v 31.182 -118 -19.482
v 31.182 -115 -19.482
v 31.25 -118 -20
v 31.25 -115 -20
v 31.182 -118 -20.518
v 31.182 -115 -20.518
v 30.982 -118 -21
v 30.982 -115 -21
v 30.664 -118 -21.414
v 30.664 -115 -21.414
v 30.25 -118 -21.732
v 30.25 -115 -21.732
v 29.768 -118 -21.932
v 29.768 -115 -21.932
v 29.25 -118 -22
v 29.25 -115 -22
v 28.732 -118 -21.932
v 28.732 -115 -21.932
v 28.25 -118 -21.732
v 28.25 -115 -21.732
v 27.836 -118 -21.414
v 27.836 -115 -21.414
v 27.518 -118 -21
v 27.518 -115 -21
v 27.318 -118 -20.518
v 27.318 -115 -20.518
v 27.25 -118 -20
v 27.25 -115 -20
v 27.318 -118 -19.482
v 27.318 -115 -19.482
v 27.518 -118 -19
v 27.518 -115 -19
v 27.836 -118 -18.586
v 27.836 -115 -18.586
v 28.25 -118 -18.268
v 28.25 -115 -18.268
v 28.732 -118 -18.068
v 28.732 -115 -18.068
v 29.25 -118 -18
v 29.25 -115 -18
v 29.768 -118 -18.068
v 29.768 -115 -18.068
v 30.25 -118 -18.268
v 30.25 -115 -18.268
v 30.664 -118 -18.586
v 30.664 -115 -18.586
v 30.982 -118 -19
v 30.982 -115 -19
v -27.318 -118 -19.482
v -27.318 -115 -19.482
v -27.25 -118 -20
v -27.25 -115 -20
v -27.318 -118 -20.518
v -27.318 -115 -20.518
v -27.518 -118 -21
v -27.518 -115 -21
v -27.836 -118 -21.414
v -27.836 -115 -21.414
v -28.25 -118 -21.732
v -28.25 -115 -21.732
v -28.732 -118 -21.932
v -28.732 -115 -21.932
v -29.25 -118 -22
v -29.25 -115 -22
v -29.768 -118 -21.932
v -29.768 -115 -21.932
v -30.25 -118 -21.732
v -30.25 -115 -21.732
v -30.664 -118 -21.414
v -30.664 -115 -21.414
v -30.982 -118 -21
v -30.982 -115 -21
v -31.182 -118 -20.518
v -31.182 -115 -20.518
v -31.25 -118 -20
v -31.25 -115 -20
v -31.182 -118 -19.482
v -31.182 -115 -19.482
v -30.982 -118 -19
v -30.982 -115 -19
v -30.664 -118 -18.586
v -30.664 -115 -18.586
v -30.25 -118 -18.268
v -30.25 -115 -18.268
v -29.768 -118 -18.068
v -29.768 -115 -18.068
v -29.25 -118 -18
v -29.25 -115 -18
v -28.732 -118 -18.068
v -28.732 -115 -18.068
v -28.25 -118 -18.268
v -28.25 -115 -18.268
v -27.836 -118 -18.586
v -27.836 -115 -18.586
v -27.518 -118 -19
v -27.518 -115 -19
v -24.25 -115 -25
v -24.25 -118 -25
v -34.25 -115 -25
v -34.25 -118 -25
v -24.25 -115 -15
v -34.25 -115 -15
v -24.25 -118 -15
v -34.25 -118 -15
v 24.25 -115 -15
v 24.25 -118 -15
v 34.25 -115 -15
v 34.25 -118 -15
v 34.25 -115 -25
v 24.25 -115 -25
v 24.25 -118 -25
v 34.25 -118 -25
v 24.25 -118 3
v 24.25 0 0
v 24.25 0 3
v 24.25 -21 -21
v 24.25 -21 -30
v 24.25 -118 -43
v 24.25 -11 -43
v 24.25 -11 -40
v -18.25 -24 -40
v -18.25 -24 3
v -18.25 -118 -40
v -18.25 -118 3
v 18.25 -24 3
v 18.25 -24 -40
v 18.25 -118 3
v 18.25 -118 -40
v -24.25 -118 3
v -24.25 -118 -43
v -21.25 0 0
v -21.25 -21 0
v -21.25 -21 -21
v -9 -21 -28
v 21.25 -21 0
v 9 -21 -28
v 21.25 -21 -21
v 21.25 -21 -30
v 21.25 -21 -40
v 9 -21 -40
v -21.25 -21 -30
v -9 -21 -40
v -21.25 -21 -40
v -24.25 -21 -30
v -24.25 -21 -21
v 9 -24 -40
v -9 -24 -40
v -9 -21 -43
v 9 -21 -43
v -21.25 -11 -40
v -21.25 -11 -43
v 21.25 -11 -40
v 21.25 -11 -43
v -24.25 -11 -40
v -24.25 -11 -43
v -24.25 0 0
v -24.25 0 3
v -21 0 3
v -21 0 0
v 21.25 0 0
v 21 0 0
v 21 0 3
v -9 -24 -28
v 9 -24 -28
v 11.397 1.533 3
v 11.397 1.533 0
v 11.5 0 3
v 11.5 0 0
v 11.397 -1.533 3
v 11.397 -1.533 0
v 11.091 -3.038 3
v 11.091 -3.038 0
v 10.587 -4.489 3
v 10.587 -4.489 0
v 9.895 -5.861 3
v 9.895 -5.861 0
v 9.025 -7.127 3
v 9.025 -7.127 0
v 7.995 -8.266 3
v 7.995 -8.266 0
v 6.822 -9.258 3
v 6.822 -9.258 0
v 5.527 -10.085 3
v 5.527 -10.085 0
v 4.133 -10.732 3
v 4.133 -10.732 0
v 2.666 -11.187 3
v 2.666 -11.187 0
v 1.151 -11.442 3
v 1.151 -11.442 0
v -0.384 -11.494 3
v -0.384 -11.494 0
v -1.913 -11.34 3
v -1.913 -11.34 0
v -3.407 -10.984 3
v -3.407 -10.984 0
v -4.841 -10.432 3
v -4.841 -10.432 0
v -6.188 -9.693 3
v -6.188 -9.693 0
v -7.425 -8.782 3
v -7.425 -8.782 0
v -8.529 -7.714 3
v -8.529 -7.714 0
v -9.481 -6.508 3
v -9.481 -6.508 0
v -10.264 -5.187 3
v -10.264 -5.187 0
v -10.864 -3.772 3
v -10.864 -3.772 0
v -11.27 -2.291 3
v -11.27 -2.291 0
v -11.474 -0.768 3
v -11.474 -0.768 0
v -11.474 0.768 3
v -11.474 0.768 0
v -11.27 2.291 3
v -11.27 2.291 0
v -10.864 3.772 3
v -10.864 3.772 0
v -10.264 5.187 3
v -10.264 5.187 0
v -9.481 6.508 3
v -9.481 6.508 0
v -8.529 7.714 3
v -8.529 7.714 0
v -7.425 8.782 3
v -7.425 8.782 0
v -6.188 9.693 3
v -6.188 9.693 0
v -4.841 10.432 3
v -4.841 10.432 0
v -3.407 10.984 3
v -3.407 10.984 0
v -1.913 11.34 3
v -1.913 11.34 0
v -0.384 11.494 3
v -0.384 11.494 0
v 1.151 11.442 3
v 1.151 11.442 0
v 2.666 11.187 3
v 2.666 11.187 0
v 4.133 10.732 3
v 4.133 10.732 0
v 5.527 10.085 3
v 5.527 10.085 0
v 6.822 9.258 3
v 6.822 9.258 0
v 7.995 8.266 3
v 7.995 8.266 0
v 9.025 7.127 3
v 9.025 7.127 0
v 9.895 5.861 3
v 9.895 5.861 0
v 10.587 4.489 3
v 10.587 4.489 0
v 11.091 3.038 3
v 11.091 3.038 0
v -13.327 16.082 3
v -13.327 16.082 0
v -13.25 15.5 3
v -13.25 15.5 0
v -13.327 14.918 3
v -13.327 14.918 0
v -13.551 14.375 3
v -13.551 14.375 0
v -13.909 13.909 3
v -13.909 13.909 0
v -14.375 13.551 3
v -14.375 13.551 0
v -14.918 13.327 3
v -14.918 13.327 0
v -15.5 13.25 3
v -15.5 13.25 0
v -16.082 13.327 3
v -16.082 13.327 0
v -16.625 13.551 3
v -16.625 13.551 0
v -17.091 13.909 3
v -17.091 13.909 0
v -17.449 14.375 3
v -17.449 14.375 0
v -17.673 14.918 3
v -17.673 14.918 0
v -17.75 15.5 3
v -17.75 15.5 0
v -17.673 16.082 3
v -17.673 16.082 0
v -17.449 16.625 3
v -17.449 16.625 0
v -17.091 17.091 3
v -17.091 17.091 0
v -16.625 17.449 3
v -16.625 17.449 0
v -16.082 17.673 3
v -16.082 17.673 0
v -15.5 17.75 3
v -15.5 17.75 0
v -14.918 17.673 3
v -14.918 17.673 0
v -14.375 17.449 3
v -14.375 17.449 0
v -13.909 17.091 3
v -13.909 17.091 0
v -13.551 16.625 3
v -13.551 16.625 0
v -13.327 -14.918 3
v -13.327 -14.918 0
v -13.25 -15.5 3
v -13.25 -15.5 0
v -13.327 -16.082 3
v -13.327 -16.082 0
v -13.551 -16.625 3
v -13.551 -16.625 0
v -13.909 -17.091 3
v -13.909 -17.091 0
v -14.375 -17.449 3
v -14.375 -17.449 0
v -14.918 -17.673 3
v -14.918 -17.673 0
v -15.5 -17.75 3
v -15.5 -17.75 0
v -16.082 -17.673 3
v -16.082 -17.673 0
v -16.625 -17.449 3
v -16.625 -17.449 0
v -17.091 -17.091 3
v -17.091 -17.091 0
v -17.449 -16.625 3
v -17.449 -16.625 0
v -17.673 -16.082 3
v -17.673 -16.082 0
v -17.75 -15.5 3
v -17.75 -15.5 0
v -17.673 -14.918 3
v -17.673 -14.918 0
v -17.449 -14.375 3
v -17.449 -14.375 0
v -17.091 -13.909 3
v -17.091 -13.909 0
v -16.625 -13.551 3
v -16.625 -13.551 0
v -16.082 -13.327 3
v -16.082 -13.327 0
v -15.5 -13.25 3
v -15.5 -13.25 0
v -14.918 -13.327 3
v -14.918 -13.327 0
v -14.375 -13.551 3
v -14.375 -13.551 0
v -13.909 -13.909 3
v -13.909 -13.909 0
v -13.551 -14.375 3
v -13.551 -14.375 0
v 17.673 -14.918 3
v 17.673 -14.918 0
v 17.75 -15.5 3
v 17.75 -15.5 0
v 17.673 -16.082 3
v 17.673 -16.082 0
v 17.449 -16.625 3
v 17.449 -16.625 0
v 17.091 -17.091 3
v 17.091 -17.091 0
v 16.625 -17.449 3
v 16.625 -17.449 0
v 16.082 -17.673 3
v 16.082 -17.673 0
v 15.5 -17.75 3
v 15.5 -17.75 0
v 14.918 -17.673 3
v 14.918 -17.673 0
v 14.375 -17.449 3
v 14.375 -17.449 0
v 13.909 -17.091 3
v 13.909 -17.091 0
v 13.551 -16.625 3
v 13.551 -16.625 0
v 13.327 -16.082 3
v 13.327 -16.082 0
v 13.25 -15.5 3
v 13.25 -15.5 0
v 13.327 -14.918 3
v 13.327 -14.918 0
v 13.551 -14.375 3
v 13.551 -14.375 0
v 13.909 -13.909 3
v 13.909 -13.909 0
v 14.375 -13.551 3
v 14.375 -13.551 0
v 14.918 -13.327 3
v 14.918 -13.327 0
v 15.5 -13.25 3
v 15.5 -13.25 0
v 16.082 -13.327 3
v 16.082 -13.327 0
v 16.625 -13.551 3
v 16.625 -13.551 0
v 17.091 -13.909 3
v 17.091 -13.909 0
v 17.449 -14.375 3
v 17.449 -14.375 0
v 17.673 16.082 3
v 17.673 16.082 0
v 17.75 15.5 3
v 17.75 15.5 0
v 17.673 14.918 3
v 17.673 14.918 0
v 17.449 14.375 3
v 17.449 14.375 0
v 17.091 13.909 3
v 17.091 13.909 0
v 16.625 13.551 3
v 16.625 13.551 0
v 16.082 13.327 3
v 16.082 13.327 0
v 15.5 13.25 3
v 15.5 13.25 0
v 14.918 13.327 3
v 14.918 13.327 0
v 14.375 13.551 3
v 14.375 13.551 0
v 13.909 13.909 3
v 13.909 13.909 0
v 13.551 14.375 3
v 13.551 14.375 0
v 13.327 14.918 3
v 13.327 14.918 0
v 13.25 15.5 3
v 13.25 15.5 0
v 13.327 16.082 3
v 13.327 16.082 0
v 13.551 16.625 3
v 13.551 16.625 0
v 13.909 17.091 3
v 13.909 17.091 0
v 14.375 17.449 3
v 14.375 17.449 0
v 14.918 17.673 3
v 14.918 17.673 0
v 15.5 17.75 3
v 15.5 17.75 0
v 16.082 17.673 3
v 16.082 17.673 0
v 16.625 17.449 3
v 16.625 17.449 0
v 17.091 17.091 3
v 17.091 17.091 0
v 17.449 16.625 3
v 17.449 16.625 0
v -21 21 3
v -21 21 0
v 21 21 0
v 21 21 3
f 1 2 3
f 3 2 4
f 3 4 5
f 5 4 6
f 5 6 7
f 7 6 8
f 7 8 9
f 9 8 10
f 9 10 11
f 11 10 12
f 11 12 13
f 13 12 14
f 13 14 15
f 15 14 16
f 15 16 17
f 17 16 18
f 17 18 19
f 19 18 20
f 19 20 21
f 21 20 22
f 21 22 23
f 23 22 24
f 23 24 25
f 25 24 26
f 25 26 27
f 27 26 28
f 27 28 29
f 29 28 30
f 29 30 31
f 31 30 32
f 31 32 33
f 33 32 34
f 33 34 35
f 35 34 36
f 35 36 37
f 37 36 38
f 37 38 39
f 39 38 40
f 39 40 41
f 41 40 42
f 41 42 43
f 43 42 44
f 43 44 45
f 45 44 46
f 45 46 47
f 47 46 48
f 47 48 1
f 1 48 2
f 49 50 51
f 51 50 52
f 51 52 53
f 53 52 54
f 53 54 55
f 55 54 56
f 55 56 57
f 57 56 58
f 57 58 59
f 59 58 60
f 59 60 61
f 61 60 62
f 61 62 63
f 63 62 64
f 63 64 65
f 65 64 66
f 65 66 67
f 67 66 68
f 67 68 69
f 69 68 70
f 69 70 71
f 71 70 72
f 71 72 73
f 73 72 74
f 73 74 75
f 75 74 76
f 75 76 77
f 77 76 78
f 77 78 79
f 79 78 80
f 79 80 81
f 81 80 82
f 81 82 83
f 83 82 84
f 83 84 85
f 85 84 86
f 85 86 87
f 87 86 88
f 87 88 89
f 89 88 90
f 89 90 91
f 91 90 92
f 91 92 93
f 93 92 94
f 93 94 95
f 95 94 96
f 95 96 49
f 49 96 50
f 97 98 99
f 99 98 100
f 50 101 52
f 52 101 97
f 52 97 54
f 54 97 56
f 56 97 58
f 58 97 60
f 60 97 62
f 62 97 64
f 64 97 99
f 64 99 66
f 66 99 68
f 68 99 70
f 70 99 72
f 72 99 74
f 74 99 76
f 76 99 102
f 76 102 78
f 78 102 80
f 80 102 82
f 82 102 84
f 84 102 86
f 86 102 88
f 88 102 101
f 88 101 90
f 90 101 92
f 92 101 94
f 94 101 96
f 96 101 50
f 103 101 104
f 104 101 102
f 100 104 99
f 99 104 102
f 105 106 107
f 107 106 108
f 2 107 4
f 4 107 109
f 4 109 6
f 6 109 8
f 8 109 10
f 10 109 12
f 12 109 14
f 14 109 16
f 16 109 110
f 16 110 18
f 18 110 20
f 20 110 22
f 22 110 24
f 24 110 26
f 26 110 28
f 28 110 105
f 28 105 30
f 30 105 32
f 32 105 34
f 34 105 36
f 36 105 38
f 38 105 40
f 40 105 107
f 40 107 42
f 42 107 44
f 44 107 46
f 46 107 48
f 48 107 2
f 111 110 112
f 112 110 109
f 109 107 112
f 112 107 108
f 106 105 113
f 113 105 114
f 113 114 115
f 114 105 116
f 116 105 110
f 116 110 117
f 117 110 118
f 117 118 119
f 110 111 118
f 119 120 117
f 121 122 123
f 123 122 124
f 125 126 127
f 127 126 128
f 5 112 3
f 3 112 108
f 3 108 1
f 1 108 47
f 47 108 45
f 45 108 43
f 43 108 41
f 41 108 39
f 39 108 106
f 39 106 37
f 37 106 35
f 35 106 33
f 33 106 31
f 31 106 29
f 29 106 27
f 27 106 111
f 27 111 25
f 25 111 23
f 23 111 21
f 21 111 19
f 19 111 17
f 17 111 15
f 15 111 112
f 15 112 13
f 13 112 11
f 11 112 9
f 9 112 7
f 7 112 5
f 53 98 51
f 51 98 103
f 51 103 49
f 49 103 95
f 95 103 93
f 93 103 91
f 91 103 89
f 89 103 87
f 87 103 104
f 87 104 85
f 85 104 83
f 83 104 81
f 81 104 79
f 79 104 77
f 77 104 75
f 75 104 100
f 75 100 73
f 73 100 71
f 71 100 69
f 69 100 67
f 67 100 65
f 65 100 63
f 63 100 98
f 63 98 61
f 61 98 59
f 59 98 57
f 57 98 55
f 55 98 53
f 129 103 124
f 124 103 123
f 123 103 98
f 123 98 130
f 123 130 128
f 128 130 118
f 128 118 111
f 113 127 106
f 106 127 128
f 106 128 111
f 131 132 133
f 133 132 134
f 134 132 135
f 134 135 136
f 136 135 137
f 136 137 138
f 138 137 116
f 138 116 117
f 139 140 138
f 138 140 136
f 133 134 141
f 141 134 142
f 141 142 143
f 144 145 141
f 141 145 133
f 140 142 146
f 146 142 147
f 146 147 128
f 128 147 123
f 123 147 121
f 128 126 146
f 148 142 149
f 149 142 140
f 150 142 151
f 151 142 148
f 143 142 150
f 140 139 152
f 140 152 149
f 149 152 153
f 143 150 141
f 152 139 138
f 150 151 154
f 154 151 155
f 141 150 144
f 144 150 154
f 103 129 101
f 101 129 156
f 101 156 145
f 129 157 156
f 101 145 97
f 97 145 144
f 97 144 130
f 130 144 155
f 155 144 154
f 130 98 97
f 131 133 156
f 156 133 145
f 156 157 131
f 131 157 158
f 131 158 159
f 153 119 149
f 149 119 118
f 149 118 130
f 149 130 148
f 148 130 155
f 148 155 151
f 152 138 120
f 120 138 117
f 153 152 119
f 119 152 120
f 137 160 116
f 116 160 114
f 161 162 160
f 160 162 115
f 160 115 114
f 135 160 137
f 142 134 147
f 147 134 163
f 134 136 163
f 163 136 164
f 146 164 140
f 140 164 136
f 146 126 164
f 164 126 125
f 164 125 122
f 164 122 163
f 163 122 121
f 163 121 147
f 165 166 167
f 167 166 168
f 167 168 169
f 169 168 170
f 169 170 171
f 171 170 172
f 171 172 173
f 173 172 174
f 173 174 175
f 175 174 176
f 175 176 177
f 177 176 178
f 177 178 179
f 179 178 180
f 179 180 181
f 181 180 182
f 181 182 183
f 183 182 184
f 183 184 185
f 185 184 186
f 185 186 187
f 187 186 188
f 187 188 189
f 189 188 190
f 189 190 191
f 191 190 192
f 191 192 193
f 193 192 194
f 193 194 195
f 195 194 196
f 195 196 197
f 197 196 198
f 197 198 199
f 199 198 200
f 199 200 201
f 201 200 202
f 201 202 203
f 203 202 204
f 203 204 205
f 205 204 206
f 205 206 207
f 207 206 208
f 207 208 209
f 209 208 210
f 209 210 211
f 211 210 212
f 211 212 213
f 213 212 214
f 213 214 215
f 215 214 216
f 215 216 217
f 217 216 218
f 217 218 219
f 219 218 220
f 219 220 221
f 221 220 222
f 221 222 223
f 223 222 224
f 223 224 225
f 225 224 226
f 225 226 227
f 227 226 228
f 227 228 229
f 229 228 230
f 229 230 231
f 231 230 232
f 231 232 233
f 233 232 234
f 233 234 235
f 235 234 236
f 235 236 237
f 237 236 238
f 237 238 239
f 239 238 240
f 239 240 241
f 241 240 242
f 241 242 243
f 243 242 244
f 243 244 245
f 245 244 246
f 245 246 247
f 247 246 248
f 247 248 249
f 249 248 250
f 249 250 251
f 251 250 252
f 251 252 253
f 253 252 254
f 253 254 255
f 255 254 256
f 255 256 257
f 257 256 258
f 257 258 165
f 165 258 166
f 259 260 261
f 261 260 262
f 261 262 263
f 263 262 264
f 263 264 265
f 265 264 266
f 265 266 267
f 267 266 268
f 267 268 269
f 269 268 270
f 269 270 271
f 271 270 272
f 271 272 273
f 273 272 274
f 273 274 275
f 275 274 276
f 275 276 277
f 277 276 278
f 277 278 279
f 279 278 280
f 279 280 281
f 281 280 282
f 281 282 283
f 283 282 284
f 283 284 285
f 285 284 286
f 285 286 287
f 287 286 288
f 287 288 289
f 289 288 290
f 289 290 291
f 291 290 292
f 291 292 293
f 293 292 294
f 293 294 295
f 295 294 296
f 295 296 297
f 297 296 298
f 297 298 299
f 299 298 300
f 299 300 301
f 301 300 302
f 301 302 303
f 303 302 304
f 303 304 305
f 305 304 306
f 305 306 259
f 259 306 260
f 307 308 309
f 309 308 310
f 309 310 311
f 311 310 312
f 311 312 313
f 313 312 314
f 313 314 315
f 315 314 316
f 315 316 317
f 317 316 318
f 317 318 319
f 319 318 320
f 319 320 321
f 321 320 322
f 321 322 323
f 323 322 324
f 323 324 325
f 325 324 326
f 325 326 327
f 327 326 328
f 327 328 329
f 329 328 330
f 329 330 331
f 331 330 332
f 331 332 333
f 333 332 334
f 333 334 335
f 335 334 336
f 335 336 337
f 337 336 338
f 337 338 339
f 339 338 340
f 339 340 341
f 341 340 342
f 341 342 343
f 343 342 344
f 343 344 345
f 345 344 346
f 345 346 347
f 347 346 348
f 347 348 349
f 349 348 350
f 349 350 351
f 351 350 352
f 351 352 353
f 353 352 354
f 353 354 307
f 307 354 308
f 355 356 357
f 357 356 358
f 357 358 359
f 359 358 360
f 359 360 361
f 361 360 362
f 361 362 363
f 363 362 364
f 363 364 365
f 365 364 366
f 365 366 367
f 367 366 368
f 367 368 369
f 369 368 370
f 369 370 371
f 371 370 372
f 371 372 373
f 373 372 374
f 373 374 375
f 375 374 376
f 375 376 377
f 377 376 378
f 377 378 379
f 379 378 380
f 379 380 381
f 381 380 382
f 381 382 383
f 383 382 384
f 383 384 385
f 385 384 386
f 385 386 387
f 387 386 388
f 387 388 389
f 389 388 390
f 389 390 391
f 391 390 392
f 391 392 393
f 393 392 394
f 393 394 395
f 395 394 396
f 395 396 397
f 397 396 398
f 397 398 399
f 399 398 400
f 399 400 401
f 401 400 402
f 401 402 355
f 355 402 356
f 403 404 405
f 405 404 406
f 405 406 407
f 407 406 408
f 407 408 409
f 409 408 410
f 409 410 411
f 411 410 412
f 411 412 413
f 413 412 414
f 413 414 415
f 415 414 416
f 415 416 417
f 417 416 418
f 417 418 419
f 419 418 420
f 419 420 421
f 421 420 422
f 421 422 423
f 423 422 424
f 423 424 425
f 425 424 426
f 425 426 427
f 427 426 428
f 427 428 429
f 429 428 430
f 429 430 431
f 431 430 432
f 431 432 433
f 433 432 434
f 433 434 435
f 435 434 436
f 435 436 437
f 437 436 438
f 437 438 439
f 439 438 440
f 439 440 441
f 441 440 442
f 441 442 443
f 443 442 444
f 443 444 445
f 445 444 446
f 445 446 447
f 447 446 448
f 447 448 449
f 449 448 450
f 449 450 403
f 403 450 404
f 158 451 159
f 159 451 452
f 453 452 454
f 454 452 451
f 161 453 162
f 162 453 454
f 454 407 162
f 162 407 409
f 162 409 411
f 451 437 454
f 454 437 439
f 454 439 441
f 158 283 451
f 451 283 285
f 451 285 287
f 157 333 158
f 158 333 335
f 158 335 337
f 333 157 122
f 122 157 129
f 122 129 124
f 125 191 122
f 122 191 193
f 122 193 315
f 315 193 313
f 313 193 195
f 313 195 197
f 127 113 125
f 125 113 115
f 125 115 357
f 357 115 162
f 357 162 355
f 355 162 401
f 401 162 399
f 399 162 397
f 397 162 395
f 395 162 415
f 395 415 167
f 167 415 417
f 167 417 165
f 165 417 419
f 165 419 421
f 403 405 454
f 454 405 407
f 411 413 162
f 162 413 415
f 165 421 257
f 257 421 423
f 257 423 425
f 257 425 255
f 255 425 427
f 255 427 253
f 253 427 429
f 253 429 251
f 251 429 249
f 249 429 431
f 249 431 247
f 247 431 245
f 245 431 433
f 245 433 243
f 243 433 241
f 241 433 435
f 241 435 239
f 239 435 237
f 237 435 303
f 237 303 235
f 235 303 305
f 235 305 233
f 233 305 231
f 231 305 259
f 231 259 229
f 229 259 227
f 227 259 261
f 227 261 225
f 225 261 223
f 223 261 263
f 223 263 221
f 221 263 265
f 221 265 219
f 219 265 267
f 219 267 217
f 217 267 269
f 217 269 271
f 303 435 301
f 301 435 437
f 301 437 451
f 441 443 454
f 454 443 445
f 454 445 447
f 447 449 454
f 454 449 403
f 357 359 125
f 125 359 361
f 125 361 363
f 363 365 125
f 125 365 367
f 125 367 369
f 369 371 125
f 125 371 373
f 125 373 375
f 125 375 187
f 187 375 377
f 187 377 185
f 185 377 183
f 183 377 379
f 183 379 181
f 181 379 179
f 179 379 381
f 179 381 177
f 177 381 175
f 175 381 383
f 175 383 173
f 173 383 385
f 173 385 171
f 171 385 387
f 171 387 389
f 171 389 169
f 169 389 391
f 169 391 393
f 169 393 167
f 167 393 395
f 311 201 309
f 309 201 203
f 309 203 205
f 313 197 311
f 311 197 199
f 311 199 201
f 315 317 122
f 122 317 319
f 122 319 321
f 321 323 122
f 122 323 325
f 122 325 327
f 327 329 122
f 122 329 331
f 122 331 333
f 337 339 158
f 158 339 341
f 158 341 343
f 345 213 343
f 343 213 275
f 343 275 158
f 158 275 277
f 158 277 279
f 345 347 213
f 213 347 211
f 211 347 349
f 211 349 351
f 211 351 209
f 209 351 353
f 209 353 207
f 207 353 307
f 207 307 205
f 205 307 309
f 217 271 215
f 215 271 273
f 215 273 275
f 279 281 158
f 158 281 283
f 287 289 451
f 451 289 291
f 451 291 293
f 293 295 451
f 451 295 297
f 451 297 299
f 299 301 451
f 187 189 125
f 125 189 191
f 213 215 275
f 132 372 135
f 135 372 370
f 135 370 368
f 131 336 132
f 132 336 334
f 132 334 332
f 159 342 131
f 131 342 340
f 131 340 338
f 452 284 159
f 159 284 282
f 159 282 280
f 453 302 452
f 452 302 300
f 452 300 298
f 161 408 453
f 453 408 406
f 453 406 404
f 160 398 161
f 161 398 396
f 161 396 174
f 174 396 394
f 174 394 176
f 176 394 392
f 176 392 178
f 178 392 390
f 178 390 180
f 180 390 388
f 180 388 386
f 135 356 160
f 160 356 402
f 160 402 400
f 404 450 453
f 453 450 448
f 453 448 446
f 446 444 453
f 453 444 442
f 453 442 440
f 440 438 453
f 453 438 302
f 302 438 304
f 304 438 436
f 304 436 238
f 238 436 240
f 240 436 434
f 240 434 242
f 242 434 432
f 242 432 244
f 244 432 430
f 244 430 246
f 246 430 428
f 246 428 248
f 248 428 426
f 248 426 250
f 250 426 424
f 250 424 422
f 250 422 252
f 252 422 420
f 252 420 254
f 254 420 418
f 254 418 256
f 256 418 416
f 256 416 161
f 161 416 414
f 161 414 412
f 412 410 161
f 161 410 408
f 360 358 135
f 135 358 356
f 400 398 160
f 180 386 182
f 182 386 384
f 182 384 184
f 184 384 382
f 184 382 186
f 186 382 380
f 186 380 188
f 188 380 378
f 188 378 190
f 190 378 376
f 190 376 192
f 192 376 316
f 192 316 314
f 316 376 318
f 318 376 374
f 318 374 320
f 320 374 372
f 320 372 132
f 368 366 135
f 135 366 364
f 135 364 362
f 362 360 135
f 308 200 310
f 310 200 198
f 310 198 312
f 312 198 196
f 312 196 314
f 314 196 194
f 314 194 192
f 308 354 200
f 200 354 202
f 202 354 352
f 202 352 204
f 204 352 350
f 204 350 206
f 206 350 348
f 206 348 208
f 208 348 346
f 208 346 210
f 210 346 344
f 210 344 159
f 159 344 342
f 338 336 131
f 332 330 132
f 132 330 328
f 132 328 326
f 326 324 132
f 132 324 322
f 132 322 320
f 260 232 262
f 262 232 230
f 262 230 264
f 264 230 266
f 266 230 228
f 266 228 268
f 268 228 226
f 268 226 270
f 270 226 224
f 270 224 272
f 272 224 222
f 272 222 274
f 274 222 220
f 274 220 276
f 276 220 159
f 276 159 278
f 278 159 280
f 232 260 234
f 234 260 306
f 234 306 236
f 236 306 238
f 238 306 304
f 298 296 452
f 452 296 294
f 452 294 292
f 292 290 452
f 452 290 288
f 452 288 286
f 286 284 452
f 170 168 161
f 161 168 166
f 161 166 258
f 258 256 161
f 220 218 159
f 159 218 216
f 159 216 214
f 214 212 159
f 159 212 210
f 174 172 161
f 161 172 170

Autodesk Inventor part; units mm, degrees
ref_plane "YZ Plane" through (0, 0, 0) normal (1, 0, 0) x (0, 1, 0)
ref_plane "XZ Plane" through (0, 0, 0) normal (0, 1, 0) x (-1, 0, 0)
ref_plane "XY Plane" through (0, 0, 0) normal (0, 0, 1) x (1, 0, 0)
sketch "Boceto1" plane through (0, 0, 0) normal (0, 0, 1) x (1, 0, 0)
  line L0 (-21, 21) -> (21, 21)
  line L1 (21, 21) -> (21, -21)
  line L2 (21, -21) -> (-21, -21)
  line L3 (-21, -21) -> (-21, 21)
  circle A0 centre (0, 0) radius 11.5
  circle A1 centre (-15.5, 15.5) radius 2.25
  circle A2 centre (-15.5, -15.5) radius 2.25
  circle A3 centre (15.5, -15.5) radius 2.25
  circle A4 centre (15.5, 15.5) radius 2.25
  dimension "d0" = 42
  dimension "d1" = 42
  dimension "d2" = 23
  dimension "d6" = 4.5
  dimension "d7" = 4.5
  dimension "d8" = 4.5
  dimension "d9" = 4.5
extrude "Extrusión1" add sketch "Boceto1" along normal blind 3
sketch "Boceto28" plane through (0, 0, 3) normal (0, 0, 1) x (1, 0, 0)
  line L0 (-21.25, -24) -> (21.25, -24)
  line L1 (21.25, -24) -> (21.25, -21)
  line L2 (-21.25, -21) -> (-21.25, -24)
  line L3 (-21, -21) -> (21, -21) projected
  line L4 (21.25, -21) -> (-21.25, -21)
  point P0 (0, 0)
extrude "Extrusión24" add sketch "Boceto28" against normal blind 43
sketch "Boceto29" plane through (-21.25, -21, -40) normal (0, 1, 0) x (1, 0, 0)
  line L0 (30.25, -12) -> (12.25, -12)
  line L1 (0, 0) -> (42.5, 0) projected
  line L2 (12.25, 0) -> (30.25, 0)
  line L3 (12.25, 0) -> (12.25, -12)
  line L4 (30.25, 0) -> (30.25, -12)
  point P0 (21.25, -40)
extrude "Extrusión25" cut sketch "Boceto29" against normal blind 3
sketch "Boceto33" plane through (21.25, -24, 3) normal (1, 0, 0) x (0, 0, -1)
  line L0 (43, 0) -> (33, 0)
  line L1 (33, 0) -> (33, 3)
  line L2 (43, 0) -> (46, 0)
  line L3 (46, 0) -> (46, 13)
  line L4 (46, 13) -> (43, 13)
  line L5 (43, 13) -> (33, 3)
  line L6 (0, 45) -> (0, 3) projected
  line L7 (0, 0) -> (43, 0) projected
  line L8 (0, 24) -> (0, 0)
  line L9 (0, 0) -> (24, 0)
  line L10 (24, 0) -> (24, 3)
  line L11 (0, 3) -> (43, 3) projected
  line L12 (0, 24) -> (3, 24)
  line L13 (3, 45) -> (3, 3) projected
  line L14 (3, 24) -> (24, 3)
  point P0 (0, 3)
  dimension "d153" = 10
  dimension "d154" = 3
  dimension "d155" = 13
  dimension "d156" = 3
  dimension "d181" = 24
extrude "Extrusión28" add sketch "Boceto33" along normal blind 3 contours L0 L1 L5 L4 L3 L2 | L7 L8 L11 L10 | L11 L13 L14 | L11 L6 L12 L13
sketch "Boceto34" plane through (-21.25, -24, 3) normal (-1, 0, 0) x (0, 0, 1)
  line L0 (-46, 0) -> (-46, 13) projected
  line L1 (-46, 13) -> (-43, 13) projected
  line L2 (-46, 13) -> (-43, 13)
  line L3 (-43, 13) -> (-33, 3)
  line L4 (-43, 0) -> (-46, 0) projected
  line L5 (-46, 13) -> (-46, 0)
  line L6 (-46, 0) -> (-33, 0)
  line L7 (-33, 3) -> (-33, 0)
  line L8 (-24, 0) -> (-24, 3)
  line L9 (-24, 3) -> (-3, 24)
  line L10 (0, 24) -> (-3, 24)
  line L11 (-24, 0) -> (0, 0)
  line L12 (0, 0) -> (0, 24)
extrude "Extrusión29" add sketch "Boceto34" along normal blind 3
sketch "Boceto36" plane through (0, 0, -40) normal (0, 0, -1) x (-1, 0, 0)
  line L0 (9, -21) -> (9, -24) projected
  line L1 (9, -24) -> (21.25, -24)
  line L2 (21.25, -24) -> (21.25, -11)
  line L3 (9, -21) -> (9, -24)
  line L4 (-9, -24) -> (-9, -21) projected
  line L5 (-9, -21) -> (-9, -24)
  line L6 (-21, -21) -> (-21, 21) projected
  line L7 (-21.25, -11) -> (-9, -21)
  line L8 (-21.25, -11) -> (-21.25, -24)
  line L9 (24.25, -24) -> (-24.25, -24) projected
  line L10 (-9, -24) -> (-21.25, -24)
  line L11 (9, -21) -> (21.25, -11)
extrude "Extrusión31" add sketch "Boceto36" along normal blind 3
sketch "Boceto37" plane through (-21, -21, 0) normal (0, 1, 0) x (1, 0, 0)
  line L0 (45.25, 40) -> (45.25, 30) projected
  line L1 (42.25, 21) -> (42.25, 0) projected
  line L2 (45.25, 30) -> (42.25, 30)
  line L3 (42.25, 30) -> (42.25, 21)
  line L4 (42.25, 21) -> (45.25, 21)
  line L5 (45.25, 21) -> (45.25, 30)
  line L6 (30, 40) -> (30, 43) projected
  line L7 (12, 43) -> (12, 28) projected
  line L8 (30, 40) -> (12, 40)
  line L9 (12, 40) -> (12, 43)
  line L10 (12, 43) -> (30, 43)
  line L11 (30, 43) -> (30, 40)
  line L12 (-0.25, 21) -> (-0.25, 30) projected
  line L13 (-3.25, 0) -> (-3.25, 21) projected
  line L14 (-0.25, 30) -> (-3.25, 30)
  line L15 (-3.25, 30) -> (-3.25, 21)
  line L16 (-3.25, 21) -> (-0.25, 21)
  line L17 (-0.25, 21) -> (-0.25, 30)
extrude "Extrusión32" add sketch "Boceto37" against normal blind 3
sketch "Boceto38" plane through (0, 0, 3) normal (0, 0, 1) x (1, 0, 0)
  line L0 (-21.25, 0) -> (-21.25, -21) projected
  line L1 (-21, -21) -> (-21.25, -21) projected
  line L2 (-21.25, 0) -> (-21, 0)
  line L3 (-21, 0) -> (-21, -21)
  line L4 (-21, -21) -> (-21.25, -21)
  line L5 (-21.25, -21) -> (-21.25, 0)
  line L6 (21, -21) -> (21, 21) projected
  line L7 (21.25, 0) -> (21.25, -21) projected
  line L8 (21, -21) -> (21.25, -21)
  line L9 (21.25, -21) -> (21.25, 0)
  line L10 (21.25, 0) -> (21, 0)
  line L11 (21, 0) -> (21, -21)
extrude "Extrusión33" add sketch "Boceto38" against normal blind 3
sketch "Boceto50" plane through (24.25, -24, -43) normal (0, -1, 0) x (1, 0, 0)
  line L0 (-45.5, 0) -> (-48.5, 0) projected
  line L1 (-48.5, 0) -> (-48.5, 46) projected
  line L2 (-48.5, 0) -> (-48.5, 46)
  line L3 (-48.5, 46) -> (-42.5, 46)
  line L4 (-42.5, 46) -> (-42.5, 3)
  line L5 (-48.5, 0) -> (0, 0) projected
  line L6 (-48.5, 0) -> (0, 0)
  line L7 (0, 0) -> (0, 46)
  line L8 (0, 46) -> (-6, 46)
  line L9 (-6, 46) -> (-6, 3)
  line L10 (-42.5, 3) -> (-6, 3)
  dimension "d183" = 6
  dimension "d184" = 6
extrude "Extrusión39" add sketch "Boceto50" along normal blind 94
sketch "Boceto51" plane through (24.25, -24, 3) normal (1, 0, 0) x (0, 0, -1)
  line L0 (18, -94) -> (28, -94)
  line L1 (28, -94) -> (28, -91)
  line L2 (28, -91) -> (18, -91)
  line L3 (18, -91) -> (18, -94)
  point P0 (3, 24)
  dimension "d171" = 10
  dimension "d172" = 3
extrude "Extrusión40" add sketch "Boceto51" along normal blind 10
sketch "Boceto52" plane through (-24.25, -24, 3) normal (-1, 0, 0) x (0, 0, 1)
  line L0 (0, -94) -> (-46, -94) projected
  line L1 (-18, -91) -> (-18, -94) projected
  line L2 (-23, -94) -> (-18, -94)
  line L3 (-18, -94) -> (-18, -91)
  line L4 (-28, -91) -> (-18, -91) projected
  line L5 (-18, -91) -> (-28, -91)
  line L6 (-28, -94) -> (-28, -91) projected
  line L7 (-28, -91) -> (-28, -94)
  line L8 (-28, -94) -> (-23, -94)
  point P0 (-3, 24)
extrude "Extrusión41" add sketch "Boceto52" along normal blind 10
sketch "Boceto56" plane through (-24.25, -115, -15) normal (0, 1, 0) x (1, 0, 0)
  line L0 (48.5, 0) -> (58.5, 0) projected
  line L1 (48.5, 10) -> (58.5, 10) projected
  line L2 (0, 10) -> (-10, 10) projected
  line L3 (0, 0) -> (-10, 0) projected
  line L4 (-10, 0) -> (-10, 10) projected
  circle A0 centre (-5, 5) radius 2
  circle A1 centre (53.5, 5) radius 2
  point P0 (24.25, -15)
  dimension "d185" = 4
  dimension "d186" = 4
extrude "Extrusión43" cut sketch "Boceto56" against normal blind 3
properties part number "Torre Motor Definitiva" material "Plástico ABS"
